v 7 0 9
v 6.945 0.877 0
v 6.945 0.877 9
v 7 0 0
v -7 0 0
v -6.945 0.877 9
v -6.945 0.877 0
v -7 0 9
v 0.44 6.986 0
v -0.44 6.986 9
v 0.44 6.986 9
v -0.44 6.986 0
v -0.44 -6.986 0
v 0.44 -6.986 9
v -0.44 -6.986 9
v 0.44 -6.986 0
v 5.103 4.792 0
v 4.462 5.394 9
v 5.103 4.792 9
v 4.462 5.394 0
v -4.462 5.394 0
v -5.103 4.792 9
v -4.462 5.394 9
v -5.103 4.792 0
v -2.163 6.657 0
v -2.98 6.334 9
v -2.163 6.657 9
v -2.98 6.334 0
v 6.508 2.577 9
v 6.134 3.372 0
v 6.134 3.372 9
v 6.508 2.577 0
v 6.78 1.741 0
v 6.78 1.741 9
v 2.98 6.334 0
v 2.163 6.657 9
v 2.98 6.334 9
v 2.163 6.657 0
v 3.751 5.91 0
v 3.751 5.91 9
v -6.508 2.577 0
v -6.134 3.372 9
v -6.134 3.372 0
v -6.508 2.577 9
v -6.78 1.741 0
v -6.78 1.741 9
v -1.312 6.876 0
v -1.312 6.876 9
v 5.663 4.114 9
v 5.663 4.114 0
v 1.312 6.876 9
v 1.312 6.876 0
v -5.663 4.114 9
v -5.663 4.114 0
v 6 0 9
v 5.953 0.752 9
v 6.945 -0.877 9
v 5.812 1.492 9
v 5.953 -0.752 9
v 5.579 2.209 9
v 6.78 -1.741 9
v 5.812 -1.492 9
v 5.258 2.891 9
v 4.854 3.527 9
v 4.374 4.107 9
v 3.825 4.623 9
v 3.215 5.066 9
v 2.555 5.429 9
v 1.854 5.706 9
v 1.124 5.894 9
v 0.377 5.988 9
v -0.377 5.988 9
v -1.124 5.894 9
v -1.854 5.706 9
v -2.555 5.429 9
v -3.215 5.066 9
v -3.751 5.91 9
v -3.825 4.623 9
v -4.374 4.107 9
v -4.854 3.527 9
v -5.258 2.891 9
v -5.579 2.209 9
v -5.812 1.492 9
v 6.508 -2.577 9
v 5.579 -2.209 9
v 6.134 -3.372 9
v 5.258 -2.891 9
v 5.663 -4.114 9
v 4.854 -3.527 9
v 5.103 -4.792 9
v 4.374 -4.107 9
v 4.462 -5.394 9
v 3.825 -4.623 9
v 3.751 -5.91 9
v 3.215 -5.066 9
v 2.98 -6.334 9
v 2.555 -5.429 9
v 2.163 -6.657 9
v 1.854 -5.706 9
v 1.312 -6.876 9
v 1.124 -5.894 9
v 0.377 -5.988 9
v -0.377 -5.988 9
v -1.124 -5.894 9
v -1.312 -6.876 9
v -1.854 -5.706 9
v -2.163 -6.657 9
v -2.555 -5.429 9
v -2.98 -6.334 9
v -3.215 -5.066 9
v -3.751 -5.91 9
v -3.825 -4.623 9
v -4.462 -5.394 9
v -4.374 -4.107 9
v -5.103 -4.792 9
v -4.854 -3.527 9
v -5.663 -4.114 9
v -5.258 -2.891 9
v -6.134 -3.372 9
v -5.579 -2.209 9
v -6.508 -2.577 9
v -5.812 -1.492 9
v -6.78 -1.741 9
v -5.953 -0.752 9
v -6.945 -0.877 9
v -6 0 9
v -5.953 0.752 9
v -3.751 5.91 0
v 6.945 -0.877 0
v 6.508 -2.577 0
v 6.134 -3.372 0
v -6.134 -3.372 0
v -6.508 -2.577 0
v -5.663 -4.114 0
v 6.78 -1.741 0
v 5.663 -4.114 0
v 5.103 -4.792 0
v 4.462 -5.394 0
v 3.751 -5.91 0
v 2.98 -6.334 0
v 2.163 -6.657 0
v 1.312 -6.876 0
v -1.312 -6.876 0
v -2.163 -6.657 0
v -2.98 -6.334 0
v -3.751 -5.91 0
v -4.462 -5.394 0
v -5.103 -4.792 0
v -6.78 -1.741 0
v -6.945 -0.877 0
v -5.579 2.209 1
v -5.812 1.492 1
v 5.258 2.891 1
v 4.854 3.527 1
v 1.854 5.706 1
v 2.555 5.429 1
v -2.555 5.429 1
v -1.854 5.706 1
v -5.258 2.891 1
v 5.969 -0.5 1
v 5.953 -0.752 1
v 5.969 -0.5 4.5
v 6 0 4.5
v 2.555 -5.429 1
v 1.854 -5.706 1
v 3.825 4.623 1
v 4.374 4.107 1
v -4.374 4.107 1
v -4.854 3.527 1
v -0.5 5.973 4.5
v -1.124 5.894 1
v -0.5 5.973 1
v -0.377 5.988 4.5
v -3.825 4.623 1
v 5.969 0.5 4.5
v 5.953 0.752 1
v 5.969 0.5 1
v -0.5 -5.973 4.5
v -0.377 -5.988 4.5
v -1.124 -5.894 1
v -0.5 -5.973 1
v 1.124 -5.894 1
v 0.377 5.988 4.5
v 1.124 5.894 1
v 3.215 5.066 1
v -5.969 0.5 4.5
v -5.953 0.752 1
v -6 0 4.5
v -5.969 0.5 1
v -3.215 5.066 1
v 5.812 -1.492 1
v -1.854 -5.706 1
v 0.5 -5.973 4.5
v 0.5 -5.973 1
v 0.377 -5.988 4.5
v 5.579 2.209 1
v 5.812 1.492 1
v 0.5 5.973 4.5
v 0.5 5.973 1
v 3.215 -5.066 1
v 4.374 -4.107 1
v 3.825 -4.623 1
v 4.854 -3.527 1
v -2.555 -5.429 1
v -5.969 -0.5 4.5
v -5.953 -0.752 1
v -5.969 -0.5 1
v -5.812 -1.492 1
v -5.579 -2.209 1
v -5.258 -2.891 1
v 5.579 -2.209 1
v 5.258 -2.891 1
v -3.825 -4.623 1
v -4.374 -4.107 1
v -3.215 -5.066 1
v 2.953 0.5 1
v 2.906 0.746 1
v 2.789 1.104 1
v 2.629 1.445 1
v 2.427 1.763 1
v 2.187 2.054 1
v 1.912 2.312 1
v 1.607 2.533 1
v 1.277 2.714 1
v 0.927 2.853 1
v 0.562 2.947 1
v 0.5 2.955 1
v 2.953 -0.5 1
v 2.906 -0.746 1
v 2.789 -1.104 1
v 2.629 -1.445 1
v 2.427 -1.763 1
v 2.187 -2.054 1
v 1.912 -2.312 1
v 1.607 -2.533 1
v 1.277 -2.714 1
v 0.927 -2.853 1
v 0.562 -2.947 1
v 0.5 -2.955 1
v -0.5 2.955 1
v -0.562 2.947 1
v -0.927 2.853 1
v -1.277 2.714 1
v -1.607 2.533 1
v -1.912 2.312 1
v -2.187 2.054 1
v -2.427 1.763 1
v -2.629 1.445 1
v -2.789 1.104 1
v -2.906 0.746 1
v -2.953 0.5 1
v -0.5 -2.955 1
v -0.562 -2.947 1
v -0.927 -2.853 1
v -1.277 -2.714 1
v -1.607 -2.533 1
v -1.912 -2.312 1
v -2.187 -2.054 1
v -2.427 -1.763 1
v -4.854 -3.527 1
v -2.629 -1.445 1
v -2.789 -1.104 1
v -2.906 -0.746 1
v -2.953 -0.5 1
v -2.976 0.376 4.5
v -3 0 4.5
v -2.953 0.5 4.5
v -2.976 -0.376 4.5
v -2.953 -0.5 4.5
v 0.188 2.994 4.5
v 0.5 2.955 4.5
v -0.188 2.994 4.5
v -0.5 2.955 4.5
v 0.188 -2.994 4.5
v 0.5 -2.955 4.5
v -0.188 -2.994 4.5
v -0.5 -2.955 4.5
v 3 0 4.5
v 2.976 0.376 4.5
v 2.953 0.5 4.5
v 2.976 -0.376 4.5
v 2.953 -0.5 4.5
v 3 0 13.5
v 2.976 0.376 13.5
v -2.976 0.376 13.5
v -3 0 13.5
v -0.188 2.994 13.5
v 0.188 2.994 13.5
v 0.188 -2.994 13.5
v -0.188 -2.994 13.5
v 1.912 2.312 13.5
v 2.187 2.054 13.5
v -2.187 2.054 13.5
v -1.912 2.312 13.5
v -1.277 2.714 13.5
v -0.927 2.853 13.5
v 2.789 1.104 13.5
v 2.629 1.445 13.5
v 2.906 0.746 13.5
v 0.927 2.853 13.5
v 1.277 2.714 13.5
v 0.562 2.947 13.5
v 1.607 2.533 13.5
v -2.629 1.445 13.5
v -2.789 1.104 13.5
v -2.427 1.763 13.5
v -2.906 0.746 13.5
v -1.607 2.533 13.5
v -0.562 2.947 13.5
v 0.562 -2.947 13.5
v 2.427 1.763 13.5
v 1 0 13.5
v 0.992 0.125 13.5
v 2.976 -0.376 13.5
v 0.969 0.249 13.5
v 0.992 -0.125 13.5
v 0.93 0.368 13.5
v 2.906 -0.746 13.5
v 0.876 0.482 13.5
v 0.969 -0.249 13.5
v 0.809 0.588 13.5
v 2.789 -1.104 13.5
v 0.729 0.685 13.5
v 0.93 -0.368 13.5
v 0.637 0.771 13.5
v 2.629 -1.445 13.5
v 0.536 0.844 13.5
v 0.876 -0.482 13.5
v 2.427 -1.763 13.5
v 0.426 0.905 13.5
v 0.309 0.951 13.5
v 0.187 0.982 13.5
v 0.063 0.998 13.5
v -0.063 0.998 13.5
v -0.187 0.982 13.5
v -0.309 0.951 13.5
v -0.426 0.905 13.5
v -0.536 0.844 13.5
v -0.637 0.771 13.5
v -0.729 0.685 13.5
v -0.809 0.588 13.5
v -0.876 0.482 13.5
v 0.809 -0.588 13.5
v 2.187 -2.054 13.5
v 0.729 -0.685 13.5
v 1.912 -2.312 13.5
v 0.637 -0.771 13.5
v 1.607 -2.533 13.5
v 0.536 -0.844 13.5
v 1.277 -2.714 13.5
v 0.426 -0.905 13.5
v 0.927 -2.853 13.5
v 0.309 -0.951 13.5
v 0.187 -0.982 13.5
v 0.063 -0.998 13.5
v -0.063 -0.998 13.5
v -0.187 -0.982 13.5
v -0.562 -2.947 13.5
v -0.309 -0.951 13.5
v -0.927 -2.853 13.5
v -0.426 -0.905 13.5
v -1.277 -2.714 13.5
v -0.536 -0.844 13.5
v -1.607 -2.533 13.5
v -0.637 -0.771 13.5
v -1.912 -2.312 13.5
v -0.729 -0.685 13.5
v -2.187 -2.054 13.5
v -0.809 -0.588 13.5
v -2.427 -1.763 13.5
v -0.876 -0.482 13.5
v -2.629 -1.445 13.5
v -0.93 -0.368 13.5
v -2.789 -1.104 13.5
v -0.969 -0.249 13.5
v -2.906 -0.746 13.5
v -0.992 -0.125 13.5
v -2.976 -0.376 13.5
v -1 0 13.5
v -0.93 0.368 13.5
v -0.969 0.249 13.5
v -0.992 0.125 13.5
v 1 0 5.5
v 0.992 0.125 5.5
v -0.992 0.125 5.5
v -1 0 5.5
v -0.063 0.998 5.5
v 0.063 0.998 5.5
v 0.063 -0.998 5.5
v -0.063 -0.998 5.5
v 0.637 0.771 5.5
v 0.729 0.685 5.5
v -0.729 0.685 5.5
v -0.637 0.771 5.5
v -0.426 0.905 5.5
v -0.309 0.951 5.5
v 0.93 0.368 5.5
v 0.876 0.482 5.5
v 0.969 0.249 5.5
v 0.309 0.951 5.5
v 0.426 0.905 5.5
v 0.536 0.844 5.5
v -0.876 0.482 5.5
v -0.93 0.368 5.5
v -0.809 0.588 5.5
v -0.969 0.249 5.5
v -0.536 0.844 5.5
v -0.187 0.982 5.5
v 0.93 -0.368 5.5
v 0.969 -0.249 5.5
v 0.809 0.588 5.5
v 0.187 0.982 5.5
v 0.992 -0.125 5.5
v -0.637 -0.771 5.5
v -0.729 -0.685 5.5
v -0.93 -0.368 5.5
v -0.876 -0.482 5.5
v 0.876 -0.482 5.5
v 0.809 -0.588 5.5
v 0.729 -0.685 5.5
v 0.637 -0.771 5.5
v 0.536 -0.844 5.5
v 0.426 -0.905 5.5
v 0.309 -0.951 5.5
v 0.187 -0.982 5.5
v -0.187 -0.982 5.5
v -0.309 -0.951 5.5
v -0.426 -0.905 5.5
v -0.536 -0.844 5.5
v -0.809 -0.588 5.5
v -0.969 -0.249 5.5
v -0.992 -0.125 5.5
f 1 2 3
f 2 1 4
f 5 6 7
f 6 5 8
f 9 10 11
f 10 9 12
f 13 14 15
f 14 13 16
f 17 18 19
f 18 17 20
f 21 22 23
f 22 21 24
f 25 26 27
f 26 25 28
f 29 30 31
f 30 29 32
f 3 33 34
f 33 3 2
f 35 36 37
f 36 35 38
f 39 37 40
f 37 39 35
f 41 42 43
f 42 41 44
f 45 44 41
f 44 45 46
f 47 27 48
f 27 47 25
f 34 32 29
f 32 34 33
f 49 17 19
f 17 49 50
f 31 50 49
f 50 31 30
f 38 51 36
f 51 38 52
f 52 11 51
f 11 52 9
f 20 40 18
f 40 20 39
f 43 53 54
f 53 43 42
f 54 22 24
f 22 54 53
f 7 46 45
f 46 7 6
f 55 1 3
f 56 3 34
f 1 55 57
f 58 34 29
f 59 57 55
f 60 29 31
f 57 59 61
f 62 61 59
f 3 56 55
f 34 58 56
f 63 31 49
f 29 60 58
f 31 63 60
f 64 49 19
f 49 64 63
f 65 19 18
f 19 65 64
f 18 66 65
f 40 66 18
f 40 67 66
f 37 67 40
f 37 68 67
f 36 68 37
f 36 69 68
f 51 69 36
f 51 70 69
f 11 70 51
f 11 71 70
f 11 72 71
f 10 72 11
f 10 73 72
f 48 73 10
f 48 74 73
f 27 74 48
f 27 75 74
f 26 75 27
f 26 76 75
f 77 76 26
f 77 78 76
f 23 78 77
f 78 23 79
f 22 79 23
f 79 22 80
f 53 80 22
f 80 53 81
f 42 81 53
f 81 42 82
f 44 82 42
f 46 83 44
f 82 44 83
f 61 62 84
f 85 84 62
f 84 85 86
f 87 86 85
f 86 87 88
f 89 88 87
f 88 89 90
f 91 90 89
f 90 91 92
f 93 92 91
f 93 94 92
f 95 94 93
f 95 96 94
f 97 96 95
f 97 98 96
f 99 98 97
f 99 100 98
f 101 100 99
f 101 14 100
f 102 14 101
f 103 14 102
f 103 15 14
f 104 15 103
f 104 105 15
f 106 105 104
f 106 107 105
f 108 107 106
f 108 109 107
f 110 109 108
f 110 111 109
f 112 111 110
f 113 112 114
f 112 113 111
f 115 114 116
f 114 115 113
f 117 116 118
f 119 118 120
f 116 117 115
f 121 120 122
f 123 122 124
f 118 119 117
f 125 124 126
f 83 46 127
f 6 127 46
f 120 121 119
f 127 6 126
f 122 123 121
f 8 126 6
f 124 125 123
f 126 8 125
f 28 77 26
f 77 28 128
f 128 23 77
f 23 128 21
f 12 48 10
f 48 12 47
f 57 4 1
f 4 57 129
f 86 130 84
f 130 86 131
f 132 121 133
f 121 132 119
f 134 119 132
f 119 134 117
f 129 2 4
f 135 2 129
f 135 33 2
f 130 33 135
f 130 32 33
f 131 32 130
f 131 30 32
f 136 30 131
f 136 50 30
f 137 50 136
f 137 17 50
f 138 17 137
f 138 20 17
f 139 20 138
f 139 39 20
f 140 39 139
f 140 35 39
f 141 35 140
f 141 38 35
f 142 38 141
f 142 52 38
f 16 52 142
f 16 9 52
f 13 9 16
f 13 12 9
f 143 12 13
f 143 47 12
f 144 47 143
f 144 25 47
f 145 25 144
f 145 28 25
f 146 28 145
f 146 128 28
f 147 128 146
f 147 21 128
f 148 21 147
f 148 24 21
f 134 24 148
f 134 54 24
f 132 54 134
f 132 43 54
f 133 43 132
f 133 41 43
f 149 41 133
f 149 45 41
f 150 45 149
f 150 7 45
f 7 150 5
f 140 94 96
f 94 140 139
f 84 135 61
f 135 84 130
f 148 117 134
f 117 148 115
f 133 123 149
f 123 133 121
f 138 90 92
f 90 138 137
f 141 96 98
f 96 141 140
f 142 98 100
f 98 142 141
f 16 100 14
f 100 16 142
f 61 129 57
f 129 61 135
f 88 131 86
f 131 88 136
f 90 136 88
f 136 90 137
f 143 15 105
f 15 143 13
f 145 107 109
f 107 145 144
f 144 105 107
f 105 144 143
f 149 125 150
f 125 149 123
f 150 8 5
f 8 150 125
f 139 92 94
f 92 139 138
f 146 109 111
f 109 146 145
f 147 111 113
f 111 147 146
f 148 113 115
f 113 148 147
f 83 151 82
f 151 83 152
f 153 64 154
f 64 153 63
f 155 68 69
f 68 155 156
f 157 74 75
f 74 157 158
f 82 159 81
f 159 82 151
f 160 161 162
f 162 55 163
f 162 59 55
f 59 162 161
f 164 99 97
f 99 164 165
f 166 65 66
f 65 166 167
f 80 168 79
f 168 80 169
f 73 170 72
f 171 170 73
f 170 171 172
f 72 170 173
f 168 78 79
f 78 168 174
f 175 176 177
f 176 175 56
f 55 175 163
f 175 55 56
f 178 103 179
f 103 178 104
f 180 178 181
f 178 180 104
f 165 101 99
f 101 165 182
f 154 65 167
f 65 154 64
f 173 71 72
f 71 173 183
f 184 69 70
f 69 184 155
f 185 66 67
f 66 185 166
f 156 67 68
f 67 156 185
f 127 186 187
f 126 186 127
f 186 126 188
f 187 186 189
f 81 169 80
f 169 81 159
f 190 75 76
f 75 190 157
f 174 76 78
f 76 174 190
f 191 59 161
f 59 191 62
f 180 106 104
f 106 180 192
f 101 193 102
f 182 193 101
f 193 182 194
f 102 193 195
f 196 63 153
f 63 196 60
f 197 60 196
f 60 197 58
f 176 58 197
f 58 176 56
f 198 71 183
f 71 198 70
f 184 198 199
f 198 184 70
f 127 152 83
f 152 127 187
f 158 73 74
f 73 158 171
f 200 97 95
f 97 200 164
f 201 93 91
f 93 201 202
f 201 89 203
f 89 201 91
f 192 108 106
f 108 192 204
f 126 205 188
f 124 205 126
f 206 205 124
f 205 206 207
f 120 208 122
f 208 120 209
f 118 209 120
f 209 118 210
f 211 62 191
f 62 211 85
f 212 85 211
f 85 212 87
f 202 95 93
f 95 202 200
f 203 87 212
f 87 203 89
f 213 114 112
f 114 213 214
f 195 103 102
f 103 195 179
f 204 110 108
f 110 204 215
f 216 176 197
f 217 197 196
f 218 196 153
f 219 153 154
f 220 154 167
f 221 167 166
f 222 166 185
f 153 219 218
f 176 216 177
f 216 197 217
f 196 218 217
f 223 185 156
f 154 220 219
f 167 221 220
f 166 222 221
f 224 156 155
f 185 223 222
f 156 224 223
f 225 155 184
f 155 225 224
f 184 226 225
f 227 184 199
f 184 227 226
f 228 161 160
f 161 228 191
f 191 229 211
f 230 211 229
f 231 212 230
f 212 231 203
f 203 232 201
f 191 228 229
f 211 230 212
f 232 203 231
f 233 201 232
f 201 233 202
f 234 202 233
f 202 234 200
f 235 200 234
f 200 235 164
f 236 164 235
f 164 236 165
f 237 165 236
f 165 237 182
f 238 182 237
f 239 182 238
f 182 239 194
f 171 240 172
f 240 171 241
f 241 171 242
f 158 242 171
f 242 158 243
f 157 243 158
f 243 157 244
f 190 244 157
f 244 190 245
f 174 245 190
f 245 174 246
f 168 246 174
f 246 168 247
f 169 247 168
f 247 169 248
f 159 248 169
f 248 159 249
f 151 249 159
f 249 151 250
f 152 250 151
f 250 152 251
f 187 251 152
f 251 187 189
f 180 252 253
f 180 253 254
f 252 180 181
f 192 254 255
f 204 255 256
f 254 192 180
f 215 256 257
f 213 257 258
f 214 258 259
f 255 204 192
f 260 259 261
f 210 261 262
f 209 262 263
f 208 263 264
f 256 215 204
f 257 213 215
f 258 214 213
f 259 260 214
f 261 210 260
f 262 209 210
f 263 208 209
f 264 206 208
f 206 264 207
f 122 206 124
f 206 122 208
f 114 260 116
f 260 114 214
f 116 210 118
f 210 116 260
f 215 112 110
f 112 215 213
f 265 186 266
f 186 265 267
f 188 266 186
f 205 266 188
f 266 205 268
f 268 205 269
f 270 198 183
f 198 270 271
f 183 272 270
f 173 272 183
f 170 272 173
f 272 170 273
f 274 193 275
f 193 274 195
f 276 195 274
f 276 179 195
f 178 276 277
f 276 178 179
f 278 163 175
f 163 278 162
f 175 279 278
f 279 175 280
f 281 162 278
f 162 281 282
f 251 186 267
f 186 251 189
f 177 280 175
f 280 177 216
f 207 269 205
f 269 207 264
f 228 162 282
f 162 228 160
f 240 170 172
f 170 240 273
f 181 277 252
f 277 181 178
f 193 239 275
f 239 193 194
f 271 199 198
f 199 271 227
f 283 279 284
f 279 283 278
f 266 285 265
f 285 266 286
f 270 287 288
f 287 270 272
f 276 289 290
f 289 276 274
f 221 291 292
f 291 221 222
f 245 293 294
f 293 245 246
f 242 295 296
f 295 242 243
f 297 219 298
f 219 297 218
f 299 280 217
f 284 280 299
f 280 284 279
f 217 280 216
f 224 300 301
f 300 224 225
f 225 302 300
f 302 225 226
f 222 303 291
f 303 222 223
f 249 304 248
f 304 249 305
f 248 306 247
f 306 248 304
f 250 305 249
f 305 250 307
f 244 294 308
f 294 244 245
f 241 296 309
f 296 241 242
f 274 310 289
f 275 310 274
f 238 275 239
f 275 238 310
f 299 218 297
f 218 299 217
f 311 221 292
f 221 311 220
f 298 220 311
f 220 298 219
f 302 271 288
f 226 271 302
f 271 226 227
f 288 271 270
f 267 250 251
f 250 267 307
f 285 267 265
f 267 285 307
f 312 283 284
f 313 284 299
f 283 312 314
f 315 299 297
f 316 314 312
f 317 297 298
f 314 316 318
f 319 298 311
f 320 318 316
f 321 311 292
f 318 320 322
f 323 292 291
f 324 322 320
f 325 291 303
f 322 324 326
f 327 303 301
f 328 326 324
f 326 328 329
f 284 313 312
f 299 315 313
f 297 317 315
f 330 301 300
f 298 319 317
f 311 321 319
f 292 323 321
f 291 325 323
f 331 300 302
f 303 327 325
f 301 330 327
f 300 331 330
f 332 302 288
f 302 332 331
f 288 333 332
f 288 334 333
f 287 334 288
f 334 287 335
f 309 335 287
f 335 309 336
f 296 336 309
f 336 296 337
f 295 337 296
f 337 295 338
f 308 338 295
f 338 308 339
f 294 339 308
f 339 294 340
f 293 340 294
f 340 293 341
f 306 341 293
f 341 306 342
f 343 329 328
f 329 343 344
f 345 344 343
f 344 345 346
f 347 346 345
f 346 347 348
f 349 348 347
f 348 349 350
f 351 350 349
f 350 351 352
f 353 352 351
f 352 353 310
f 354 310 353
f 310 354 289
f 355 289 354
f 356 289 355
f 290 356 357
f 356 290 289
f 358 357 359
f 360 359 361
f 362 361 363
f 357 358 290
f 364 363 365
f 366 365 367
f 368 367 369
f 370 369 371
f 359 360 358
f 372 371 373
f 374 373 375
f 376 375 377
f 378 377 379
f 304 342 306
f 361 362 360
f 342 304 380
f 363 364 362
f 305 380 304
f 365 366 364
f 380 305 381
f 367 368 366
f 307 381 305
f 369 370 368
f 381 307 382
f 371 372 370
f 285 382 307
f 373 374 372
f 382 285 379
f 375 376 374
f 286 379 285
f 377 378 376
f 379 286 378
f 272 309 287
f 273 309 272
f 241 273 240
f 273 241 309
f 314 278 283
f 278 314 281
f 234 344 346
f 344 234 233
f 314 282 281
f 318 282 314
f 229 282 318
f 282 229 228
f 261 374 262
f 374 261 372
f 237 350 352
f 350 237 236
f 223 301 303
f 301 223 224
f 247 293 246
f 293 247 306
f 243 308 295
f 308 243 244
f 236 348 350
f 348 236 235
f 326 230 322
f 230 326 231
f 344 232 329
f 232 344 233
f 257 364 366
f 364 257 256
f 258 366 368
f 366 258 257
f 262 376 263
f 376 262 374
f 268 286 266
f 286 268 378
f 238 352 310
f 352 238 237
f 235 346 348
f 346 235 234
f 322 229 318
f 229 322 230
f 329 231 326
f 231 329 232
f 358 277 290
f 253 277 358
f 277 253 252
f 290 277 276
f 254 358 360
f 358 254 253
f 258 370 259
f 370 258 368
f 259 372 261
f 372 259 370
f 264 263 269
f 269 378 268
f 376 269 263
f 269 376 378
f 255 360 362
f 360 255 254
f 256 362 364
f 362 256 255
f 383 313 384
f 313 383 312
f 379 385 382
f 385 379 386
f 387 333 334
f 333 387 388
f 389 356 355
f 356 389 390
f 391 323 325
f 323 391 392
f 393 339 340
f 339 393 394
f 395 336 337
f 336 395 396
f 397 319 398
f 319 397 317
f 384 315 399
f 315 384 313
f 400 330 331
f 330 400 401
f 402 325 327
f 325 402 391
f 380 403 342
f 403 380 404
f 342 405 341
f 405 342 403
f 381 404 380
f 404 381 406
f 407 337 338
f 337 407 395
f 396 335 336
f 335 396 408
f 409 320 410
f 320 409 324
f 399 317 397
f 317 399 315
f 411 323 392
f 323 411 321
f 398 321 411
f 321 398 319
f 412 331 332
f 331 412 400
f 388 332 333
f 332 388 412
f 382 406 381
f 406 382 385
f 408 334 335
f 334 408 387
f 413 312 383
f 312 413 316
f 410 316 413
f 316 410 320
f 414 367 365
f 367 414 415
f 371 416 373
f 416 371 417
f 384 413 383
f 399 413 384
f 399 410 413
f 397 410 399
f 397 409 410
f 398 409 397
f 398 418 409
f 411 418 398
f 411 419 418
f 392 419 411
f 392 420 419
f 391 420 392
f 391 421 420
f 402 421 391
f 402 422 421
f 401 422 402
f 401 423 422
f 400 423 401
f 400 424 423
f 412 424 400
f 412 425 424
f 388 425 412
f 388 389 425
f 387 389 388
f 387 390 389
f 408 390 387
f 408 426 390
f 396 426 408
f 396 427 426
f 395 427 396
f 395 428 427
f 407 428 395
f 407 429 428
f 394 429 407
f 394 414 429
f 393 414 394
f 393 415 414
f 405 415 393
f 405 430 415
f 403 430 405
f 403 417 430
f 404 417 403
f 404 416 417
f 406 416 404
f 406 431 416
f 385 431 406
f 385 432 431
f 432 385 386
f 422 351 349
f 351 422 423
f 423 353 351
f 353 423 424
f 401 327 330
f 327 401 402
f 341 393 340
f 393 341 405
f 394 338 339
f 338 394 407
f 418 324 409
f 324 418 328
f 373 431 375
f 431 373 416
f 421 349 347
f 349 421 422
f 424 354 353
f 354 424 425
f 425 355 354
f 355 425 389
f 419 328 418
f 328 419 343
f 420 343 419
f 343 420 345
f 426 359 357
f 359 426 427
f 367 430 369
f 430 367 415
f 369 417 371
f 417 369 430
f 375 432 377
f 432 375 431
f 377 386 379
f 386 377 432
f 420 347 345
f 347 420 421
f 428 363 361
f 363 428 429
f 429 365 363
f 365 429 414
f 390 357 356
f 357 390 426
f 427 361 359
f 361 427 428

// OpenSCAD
d_okraj = 14;
d_stred = 6;
d_osa   = 2;
h_okraj = 9;
$fn     = 50;

// okraj
difference() {
    cylinder( d=d_okraj, h=h_okraj );
    translate([ 0,0,1 ])
        cylinder( d=d_okraj-2, h=h_okraj );
}

// vystuze
intersection() {
    cylinder( d=d_okraj, h=h_okraj );
    union() {
    translate([ 0, 0, h_okraj/4 ])
        cube([ d_okraj, 1, h_okraj/2 ], center=true );
    translate([ 0, 0, h_okraj/4 ])
        cube([ 1, d_okraj, h_okraj/2 ], center=true );
    }
}

// stred
difference() {
    cylinder( d=d_stred, h=h_okraj*1.5 );
    translate([ 0,0,h_okraj/2 + 1 ])
        cylinder( d=d_osa, h=h_okraj*1.5 );
}
